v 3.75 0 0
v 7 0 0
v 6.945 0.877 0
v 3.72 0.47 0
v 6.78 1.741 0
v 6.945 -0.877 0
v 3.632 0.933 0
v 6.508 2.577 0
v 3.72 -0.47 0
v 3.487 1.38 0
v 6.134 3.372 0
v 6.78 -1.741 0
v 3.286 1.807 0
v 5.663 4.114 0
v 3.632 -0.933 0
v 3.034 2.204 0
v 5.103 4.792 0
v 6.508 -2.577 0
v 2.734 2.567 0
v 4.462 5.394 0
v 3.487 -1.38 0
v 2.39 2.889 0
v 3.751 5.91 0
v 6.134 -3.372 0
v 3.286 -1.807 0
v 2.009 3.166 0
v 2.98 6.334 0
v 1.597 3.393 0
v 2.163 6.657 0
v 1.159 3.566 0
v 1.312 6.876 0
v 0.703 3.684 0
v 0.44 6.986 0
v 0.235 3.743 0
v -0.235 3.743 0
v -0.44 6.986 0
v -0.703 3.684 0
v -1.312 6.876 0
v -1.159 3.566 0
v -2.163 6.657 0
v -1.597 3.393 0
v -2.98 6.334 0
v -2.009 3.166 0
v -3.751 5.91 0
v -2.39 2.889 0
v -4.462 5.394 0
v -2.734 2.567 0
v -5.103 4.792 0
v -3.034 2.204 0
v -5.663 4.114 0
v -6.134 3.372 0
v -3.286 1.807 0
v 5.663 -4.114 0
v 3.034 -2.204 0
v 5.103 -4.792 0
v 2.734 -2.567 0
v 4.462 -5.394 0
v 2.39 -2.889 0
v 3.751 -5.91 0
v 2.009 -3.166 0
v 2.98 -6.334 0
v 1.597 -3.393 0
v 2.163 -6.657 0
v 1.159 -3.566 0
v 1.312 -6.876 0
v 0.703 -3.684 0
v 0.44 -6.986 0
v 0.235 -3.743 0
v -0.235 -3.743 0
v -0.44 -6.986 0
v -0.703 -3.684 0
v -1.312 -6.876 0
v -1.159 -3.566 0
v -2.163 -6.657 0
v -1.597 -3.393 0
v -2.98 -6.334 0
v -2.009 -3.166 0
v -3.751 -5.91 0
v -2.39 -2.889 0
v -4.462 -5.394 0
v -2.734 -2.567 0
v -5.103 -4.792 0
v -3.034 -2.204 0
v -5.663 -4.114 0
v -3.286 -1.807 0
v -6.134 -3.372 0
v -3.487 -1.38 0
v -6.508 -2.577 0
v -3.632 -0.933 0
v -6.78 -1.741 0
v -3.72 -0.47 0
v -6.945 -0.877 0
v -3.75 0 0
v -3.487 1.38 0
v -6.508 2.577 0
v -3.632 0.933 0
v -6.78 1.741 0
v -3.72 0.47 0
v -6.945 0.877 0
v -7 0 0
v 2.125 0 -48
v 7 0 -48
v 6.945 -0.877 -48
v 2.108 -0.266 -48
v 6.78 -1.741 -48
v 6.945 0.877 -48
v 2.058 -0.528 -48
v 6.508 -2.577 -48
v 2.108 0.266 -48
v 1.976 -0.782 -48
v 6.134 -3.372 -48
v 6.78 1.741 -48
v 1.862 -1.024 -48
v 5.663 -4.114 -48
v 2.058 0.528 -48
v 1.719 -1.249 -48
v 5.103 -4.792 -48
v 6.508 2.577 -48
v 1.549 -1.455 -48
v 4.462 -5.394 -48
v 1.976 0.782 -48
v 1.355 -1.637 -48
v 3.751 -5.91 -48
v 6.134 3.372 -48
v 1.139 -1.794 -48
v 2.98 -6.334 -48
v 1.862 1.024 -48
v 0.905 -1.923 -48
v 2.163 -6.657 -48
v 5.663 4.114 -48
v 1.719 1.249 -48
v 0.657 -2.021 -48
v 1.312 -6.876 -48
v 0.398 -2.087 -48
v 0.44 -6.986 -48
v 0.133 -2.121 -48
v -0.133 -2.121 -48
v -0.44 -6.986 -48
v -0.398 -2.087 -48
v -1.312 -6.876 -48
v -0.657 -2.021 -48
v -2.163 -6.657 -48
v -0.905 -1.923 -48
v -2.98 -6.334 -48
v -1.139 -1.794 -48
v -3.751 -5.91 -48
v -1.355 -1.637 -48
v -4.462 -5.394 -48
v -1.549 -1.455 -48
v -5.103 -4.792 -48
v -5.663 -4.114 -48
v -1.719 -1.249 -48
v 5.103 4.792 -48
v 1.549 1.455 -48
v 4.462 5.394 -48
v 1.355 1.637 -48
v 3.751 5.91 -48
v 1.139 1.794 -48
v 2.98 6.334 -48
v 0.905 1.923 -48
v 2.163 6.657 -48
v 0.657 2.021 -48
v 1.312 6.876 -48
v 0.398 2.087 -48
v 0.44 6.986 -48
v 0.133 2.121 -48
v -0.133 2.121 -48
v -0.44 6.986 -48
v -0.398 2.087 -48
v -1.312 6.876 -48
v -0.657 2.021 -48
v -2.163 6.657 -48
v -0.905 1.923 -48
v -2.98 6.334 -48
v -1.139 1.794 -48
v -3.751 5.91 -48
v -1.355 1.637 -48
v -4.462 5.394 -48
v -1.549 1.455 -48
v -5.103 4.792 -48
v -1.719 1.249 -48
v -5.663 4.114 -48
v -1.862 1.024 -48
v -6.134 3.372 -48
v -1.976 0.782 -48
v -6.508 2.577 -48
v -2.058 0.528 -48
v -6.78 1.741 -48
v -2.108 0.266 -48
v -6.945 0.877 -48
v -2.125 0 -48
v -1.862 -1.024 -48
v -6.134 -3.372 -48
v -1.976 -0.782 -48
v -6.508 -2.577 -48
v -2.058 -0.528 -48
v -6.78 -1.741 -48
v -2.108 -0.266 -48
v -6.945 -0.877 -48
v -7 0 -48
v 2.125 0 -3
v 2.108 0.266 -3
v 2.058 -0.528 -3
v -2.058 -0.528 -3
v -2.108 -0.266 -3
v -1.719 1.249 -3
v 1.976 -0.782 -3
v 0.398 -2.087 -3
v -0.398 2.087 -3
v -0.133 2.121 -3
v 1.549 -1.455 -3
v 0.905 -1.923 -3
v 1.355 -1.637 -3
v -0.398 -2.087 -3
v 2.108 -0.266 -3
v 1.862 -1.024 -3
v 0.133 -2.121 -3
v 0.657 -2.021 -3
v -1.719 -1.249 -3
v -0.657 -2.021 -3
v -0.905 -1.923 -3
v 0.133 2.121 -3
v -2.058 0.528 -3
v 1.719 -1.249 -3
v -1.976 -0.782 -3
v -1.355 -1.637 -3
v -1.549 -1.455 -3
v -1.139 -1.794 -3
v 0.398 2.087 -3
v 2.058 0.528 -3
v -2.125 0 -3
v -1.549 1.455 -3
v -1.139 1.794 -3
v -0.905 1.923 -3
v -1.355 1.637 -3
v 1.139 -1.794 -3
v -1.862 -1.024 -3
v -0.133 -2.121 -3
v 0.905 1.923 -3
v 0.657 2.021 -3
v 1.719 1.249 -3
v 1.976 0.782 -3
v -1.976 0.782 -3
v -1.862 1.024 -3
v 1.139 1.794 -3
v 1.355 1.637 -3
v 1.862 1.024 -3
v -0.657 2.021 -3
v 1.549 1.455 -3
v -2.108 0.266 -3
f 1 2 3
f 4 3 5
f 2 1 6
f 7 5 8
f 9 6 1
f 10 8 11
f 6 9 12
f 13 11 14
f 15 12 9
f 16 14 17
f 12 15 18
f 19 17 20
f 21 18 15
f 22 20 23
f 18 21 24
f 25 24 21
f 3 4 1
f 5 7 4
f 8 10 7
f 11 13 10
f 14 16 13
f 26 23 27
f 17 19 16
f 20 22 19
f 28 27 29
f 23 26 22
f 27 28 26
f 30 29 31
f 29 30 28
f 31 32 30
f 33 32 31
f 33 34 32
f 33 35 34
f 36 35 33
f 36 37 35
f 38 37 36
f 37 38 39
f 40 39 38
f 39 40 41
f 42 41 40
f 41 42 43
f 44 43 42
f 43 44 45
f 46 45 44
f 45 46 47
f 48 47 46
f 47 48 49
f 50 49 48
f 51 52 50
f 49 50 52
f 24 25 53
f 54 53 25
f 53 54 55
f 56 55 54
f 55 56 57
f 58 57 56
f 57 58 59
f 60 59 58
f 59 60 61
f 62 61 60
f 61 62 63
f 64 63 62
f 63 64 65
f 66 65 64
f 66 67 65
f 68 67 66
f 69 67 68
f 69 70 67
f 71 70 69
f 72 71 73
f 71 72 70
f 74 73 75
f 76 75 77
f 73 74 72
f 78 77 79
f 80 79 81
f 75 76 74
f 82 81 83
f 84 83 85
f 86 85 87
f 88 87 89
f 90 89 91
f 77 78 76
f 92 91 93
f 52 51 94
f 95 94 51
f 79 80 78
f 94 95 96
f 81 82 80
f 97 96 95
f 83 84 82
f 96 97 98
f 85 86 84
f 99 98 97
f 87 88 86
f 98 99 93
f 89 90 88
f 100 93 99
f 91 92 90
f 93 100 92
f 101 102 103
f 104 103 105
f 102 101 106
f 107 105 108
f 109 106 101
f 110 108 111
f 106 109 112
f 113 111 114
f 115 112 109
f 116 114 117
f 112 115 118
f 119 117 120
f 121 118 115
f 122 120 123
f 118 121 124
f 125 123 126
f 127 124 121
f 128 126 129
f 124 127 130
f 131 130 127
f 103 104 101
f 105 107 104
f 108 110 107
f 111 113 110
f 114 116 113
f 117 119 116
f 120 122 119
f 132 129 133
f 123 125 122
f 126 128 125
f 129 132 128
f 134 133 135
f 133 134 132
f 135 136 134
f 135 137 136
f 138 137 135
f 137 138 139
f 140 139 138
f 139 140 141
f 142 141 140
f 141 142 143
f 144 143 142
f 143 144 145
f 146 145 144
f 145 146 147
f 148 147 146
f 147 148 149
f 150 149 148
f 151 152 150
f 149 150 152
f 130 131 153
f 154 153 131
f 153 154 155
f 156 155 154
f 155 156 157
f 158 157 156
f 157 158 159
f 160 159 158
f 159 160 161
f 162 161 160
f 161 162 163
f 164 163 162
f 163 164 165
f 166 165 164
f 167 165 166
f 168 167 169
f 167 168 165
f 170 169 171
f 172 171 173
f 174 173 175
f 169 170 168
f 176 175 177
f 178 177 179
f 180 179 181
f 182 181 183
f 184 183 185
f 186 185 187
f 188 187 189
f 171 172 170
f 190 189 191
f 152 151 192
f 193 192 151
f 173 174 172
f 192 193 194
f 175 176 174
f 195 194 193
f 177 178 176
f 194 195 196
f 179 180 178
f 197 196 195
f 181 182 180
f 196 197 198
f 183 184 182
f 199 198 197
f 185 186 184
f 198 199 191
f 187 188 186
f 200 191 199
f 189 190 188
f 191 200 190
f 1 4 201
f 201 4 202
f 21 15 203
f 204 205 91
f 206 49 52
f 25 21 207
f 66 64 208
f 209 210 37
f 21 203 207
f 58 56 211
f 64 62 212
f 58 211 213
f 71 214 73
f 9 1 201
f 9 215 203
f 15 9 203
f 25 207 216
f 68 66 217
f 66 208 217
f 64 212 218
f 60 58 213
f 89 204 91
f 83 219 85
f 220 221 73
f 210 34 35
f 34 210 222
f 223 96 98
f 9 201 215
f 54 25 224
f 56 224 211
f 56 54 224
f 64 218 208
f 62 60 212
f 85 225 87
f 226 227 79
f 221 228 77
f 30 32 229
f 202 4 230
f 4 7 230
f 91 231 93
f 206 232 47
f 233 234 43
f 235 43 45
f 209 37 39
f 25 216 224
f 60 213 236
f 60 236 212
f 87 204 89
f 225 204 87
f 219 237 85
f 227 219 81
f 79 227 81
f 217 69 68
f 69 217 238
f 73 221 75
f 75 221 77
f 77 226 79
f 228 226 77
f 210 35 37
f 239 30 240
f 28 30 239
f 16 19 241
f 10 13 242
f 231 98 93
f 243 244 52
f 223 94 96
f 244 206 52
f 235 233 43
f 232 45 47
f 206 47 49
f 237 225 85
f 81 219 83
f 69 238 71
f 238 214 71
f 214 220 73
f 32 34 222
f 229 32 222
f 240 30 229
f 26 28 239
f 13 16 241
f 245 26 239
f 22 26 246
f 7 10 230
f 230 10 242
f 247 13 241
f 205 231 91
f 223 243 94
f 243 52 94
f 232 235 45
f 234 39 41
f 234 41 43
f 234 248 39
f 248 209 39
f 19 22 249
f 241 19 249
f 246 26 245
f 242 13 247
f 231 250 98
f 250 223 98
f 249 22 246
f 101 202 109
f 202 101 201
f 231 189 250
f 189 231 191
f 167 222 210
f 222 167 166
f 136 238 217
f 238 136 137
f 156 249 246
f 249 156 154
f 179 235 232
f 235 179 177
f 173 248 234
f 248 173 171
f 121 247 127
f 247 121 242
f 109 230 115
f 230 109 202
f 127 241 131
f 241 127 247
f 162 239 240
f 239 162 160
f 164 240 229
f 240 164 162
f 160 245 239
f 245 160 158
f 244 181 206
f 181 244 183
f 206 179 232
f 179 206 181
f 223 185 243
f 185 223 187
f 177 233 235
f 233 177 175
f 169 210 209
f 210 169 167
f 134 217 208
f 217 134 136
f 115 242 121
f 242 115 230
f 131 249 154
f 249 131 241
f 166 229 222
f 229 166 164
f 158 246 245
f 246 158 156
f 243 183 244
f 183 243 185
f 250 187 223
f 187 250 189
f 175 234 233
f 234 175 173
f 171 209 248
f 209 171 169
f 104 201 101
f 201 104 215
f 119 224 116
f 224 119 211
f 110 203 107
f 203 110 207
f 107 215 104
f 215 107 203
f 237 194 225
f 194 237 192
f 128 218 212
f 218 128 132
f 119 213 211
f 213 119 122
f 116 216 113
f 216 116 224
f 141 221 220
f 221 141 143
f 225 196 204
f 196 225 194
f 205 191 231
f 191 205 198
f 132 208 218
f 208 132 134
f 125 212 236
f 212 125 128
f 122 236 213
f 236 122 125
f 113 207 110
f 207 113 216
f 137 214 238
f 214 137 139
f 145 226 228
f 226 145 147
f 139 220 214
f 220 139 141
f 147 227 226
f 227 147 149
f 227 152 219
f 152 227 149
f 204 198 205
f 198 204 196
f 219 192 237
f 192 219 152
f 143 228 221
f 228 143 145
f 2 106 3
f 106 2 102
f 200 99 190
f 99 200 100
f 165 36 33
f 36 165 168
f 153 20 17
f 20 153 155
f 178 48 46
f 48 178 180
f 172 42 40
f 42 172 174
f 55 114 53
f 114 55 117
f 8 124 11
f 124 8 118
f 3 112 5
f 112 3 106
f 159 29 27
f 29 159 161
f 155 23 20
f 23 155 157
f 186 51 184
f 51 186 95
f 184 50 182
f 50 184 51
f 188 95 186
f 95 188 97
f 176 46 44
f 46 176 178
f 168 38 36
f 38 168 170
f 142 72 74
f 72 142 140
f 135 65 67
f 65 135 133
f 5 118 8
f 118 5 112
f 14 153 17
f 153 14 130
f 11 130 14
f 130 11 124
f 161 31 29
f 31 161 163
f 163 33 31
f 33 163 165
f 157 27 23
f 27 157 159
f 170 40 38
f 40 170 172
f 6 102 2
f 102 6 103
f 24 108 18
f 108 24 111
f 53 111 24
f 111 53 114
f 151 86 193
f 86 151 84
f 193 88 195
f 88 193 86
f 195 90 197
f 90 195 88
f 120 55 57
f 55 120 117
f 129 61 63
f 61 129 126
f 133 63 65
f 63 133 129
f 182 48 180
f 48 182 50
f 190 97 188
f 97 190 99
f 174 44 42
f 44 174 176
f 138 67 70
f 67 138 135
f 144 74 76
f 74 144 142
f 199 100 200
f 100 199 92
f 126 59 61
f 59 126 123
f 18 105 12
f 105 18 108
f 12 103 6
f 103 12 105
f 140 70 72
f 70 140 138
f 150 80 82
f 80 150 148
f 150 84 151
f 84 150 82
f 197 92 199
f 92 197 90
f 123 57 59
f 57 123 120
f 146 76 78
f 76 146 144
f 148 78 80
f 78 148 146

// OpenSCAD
$fn = 50;


difference() {
	union() {
		translate(v = [0, 0, -48.0000000000]) {
			cylinder(h = 48, r = 7.0000000000);
		}
		cylinder(h = 0, r = 13.0000000000);
	}
	union() {
		translate(v = [0, 0, 0]) {
			rotate(a = [0, 0, 0]) {
				difference() {
					union() {
						#translate(v = [0, 0, -48.0000000000]) {
							cylinder(h = 48, r = 2.0000000000);
						}
						#translate(v = [0, 0, -3]) {
							cylinder(h = 3, r1 = 2.1250000000, r2 = 3.7500000000);
						}
						#translate(v = [0, 0, -48.0000000000]) {
							cylinder(h = 48, r = 2.1250000000);
						}
						#translate(v = [0, 0, -48.0000000000]) {
							cylinder(h = 48, r = 2.0000000000);
						}
					}
					union();
				}
			}
		}
	}
}
